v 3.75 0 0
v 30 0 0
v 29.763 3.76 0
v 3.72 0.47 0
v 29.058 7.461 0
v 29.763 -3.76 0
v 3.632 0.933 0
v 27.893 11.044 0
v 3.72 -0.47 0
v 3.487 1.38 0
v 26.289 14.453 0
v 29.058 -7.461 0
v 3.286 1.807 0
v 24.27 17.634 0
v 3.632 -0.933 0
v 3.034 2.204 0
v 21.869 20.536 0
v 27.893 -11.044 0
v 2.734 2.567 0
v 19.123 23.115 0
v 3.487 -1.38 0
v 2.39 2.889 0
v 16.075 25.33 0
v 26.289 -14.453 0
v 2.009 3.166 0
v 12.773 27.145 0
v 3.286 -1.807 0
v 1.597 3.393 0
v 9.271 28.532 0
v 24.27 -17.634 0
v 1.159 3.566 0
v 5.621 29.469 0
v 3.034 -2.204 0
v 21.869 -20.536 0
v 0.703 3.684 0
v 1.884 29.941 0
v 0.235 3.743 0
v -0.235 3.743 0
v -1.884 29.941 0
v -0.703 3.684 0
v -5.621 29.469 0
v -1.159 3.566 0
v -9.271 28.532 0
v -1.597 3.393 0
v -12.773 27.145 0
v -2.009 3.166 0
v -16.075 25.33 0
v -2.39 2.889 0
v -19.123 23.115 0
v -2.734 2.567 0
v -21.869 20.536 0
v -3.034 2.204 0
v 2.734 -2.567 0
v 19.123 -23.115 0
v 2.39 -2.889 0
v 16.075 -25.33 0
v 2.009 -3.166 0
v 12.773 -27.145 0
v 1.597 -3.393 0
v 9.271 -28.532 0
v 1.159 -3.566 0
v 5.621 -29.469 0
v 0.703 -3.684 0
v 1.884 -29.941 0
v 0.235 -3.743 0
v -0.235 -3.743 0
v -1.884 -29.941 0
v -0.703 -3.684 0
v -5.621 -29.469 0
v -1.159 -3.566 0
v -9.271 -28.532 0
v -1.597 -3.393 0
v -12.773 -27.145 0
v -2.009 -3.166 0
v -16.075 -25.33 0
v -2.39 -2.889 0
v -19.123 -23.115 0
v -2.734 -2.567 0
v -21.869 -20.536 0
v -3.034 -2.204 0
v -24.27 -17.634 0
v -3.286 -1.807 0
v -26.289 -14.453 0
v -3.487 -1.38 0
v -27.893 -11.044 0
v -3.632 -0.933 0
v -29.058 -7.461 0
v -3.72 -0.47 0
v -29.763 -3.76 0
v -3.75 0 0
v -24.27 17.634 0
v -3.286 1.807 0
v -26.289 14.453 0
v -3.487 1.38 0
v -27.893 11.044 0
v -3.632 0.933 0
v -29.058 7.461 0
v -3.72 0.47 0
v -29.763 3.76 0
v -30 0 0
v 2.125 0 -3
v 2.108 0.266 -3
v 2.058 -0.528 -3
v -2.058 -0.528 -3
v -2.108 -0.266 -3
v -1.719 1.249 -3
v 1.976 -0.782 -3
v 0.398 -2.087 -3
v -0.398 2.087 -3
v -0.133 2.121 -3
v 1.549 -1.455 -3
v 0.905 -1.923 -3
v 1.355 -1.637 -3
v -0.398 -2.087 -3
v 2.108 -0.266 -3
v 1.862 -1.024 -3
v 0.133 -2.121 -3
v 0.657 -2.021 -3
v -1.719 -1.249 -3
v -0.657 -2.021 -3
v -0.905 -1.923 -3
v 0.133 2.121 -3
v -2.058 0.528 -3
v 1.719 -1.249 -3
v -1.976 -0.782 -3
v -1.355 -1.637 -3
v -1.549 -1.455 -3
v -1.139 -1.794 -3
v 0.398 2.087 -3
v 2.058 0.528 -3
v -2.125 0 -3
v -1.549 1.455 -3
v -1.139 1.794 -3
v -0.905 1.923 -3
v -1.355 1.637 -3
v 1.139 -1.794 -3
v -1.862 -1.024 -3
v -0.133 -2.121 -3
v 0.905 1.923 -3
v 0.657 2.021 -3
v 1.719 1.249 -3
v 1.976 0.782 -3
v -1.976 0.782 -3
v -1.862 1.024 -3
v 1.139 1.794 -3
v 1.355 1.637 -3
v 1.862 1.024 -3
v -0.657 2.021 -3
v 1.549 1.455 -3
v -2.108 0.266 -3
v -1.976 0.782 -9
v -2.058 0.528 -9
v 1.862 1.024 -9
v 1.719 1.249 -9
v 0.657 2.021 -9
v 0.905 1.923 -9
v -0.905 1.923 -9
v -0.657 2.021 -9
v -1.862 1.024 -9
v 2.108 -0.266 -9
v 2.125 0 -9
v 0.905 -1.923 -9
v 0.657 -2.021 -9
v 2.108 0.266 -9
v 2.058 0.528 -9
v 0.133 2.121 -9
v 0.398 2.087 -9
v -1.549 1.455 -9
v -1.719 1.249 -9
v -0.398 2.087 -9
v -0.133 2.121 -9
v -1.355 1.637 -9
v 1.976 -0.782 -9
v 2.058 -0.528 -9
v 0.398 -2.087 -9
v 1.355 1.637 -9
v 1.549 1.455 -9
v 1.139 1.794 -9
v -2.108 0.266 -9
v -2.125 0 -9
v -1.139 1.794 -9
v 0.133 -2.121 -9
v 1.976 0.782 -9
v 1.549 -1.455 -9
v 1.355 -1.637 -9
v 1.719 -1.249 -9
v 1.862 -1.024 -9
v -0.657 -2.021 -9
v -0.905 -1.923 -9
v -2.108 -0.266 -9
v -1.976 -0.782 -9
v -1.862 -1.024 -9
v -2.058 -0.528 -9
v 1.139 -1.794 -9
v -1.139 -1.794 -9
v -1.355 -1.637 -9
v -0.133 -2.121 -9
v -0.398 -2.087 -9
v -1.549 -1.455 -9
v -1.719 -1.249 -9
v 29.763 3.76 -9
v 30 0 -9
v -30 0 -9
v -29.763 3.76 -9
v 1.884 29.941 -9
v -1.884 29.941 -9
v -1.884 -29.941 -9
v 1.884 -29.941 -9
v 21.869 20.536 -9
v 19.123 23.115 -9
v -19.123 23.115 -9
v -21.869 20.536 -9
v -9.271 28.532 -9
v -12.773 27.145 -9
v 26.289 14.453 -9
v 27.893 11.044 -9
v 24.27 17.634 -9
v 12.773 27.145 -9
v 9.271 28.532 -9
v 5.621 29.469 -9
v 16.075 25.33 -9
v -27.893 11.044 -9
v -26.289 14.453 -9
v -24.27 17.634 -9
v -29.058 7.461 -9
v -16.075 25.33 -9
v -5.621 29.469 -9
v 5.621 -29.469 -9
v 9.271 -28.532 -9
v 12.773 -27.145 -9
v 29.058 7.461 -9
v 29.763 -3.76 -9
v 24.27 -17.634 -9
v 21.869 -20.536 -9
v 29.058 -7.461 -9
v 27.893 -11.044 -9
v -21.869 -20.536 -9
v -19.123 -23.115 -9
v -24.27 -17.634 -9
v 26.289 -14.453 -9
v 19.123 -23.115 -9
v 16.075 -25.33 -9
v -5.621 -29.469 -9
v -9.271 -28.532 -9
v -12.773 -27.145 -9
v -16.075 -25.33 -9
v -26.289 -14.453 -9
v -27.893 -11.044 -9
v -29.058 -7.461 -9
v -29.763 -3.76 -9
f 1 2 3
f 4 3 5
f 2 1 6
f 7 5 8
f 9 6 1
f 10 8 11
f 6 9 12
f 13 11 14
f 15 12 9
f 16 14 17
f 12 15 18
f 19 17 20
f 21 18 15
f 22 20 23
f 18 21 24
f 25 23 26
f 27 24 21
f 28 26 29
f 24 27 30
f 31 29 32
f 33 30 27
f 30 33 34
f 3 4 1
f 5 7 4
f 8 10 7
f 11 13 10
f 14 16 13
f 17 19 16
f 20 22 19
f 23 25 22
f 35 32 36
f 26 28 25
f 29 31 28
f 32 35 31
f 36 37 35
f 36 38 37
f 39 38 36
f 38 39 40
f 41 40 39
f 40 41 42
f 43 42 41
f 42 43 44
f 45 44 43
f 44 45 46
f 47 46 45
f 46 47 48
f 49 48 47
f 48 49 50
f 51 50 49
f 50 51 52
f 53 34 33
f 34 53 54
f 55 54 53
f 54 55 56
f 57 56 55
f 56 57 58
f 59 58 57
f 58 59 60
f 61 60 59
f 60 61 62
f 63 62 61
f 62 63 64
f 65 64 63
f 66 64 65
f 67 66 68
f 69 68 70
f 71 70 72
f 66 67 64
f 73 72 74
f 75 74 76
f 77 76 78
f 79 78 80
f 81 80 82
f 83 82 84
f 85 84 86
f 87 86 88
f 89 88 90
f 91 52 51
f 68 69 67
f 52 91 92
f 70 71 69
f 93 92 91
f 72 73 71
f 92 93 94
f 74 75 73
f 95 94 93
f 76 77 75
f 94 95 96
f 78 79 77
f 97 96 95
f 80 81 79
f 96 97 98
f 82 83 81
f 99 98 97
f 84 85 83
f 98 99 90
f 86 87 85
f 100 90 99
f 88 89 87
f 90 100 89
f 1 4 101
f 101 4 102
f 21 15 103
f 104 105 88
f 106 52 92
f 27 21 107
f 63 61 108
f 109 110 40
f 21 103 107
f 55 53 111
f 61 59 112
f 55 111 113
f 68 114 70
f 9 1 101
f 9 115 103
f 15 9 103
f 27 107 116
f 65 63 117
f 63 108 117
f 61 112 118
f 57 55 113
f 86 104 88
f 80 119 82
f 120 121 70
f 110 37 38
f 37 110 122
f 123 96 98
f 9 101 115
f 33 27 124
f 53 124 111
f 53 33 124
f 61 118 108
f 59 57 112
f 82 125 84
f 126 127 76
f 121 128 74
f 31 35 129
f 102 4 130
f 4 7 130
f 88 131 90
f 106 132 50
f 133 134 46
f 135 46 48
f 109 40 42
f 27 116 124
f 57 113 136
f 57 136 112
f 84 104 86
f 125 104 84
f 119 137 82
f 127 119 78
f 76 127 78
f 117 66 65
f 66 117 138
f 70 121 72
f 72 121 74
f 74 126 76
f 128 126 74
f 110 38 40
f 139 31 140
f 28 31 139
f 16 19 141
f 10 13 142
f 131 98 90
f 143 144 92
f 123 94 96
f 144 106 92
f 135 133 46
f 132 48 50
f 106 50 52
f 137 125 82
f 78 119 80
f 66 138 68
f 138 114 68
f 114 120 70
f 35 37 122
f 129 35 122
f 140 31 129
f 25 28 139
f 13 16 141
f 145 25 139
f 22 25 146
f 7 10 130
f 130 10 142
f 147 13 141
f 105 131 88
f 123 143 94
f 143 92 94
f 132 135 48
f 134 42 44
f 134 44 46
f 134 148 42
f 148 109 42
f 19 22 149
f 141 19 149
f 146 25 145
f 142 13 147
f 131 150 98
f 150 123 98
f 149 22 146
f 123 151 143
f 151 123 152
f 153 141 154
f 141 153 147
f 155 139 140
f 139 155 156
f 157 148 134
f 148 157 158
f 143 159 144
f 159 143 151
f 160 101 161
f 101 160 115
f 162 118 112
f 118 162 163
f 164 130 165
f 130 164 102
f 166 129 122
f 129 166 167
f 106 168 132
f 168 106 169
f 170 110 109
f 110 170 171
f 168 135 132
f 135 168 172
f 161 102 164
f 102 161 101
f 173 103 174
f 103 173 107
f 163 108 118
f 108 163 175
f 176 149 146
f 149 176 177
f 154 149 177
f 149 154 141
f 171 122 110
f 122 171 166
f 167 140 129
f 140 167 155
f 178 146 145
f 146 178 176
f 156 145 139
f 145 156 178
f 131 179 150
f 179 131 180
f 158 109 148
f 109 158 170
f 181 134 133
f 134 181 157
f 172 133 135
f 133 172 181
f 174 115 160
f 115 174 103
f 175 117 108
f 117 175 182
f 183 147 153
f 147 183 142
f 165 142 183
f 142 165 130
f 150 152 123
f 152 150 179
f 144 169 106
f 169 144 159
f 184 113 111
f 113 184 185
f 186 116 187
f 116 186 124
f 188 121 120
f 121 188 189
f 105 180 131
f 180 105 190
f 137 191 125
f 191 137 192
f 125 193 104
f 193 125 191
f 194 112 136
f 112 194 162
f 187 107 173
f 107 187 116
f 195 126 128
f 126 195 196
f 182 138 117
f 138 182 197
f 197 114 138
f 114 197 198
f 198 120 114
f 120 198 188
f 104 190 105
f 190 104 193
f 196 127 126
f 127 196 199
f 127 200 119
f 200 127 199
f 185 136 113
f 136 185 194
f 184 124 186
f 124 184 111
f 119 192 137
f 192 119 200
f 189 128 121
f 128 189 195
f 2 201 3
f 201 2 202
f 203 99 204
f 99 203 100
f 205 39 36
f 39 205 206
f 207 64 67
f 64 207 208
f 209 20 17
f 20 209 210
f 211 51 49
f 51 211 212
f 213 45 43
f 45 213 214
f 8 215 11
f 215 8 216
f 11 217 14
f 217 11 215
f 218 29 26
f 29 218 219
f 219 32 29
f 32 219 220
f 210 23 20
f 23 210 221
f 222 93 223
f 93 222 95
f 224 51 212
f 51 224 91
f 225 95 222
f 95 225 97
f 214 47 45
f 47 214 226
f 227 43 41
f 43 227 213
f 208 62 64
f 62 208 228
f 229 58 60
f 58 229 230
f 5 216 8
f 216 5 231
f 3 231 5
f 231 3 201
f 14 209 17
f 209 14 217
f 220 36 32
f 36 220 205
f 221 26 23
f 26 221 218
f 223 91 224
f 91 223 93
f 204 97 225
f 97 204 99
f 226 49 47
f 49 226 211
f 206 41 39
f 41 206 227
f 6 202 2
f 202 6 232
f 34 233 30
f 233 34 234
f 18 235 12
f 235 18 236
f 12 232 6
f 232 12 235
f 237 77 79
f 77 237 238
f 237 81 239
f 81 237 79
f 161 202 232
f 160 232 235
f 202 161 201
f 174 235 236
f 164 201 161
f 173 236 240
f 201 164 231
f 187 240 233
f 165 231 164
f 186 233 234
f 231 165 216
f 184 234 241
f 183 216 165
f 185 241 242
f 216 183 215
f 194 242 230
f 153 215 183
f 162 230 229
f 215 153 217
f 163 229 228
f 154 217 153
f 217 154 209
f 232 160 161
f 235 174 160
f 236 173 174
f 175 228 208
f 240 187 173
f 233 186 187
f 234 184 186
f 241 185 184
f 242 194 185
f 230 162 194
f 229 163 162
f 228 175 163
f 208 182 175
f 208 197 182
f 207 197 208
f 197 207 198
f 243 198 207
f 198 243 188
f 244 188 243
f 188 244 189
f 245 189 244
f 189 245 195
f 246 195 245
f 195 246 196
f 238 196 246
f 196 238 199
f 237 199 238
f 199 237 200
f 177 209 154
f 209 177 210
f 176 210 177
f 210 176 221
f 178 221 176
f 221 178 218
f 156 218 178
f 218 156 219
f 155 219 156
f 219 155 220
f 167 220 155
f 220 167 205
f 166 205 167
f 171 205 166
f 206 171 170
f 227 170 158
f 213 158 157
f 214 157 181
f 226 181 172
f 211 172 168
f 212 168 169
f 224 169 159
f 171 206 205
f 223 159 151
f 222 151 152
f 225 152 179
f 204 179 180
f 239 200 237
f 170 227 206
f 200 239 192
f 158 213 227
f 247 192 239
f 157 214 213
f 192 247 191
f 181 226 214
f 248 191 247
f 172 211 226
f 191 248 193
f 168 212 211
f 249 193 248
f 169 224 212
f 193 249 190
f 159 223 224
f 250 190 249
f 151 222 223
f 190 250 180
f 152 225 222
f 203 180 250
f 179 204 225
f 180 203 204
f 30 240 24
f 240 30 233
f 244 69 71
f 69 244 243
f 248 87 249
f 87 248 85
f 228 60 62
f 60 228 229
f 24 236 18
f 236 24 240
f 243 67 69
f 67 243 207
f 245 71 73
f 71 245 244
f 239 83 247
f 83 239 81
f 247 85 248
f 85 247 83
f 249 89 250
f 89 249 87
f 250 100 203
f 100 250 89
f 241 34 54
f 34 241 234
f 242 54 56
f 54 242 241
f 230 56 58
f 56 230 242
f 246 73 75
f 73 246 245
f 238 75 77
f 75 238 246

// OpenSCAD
$fn = 50;

difference() {
	union() {
		translate(v = [0, 0, -9.0]) {
			cylinder(h = 9, r = 30.0);
		}
	}
	union() {
		translate(v = [0, 0, 0]) {
			rotate(a = [0, 0, 0]) {
				difference() {
					union() {
						translate(v = [0, 0, -12.0]) {
							cylinder(h = 12, r = 2.0);
						}
						translate(v = [0, 0, -3]) {
							cylinder(h = 3, r1 = 2.125, r2 = 3.75);
						}
						translate(v = [0, 0, -12.0]) {
							cylinder(h = 12, r = 2.125);
						}
						translate(v = [0, 0, -12.0]) {
							cylinder(h = 12, r = 2.0);
						}
					}
					union();
				}
			}
		}
	}
}
